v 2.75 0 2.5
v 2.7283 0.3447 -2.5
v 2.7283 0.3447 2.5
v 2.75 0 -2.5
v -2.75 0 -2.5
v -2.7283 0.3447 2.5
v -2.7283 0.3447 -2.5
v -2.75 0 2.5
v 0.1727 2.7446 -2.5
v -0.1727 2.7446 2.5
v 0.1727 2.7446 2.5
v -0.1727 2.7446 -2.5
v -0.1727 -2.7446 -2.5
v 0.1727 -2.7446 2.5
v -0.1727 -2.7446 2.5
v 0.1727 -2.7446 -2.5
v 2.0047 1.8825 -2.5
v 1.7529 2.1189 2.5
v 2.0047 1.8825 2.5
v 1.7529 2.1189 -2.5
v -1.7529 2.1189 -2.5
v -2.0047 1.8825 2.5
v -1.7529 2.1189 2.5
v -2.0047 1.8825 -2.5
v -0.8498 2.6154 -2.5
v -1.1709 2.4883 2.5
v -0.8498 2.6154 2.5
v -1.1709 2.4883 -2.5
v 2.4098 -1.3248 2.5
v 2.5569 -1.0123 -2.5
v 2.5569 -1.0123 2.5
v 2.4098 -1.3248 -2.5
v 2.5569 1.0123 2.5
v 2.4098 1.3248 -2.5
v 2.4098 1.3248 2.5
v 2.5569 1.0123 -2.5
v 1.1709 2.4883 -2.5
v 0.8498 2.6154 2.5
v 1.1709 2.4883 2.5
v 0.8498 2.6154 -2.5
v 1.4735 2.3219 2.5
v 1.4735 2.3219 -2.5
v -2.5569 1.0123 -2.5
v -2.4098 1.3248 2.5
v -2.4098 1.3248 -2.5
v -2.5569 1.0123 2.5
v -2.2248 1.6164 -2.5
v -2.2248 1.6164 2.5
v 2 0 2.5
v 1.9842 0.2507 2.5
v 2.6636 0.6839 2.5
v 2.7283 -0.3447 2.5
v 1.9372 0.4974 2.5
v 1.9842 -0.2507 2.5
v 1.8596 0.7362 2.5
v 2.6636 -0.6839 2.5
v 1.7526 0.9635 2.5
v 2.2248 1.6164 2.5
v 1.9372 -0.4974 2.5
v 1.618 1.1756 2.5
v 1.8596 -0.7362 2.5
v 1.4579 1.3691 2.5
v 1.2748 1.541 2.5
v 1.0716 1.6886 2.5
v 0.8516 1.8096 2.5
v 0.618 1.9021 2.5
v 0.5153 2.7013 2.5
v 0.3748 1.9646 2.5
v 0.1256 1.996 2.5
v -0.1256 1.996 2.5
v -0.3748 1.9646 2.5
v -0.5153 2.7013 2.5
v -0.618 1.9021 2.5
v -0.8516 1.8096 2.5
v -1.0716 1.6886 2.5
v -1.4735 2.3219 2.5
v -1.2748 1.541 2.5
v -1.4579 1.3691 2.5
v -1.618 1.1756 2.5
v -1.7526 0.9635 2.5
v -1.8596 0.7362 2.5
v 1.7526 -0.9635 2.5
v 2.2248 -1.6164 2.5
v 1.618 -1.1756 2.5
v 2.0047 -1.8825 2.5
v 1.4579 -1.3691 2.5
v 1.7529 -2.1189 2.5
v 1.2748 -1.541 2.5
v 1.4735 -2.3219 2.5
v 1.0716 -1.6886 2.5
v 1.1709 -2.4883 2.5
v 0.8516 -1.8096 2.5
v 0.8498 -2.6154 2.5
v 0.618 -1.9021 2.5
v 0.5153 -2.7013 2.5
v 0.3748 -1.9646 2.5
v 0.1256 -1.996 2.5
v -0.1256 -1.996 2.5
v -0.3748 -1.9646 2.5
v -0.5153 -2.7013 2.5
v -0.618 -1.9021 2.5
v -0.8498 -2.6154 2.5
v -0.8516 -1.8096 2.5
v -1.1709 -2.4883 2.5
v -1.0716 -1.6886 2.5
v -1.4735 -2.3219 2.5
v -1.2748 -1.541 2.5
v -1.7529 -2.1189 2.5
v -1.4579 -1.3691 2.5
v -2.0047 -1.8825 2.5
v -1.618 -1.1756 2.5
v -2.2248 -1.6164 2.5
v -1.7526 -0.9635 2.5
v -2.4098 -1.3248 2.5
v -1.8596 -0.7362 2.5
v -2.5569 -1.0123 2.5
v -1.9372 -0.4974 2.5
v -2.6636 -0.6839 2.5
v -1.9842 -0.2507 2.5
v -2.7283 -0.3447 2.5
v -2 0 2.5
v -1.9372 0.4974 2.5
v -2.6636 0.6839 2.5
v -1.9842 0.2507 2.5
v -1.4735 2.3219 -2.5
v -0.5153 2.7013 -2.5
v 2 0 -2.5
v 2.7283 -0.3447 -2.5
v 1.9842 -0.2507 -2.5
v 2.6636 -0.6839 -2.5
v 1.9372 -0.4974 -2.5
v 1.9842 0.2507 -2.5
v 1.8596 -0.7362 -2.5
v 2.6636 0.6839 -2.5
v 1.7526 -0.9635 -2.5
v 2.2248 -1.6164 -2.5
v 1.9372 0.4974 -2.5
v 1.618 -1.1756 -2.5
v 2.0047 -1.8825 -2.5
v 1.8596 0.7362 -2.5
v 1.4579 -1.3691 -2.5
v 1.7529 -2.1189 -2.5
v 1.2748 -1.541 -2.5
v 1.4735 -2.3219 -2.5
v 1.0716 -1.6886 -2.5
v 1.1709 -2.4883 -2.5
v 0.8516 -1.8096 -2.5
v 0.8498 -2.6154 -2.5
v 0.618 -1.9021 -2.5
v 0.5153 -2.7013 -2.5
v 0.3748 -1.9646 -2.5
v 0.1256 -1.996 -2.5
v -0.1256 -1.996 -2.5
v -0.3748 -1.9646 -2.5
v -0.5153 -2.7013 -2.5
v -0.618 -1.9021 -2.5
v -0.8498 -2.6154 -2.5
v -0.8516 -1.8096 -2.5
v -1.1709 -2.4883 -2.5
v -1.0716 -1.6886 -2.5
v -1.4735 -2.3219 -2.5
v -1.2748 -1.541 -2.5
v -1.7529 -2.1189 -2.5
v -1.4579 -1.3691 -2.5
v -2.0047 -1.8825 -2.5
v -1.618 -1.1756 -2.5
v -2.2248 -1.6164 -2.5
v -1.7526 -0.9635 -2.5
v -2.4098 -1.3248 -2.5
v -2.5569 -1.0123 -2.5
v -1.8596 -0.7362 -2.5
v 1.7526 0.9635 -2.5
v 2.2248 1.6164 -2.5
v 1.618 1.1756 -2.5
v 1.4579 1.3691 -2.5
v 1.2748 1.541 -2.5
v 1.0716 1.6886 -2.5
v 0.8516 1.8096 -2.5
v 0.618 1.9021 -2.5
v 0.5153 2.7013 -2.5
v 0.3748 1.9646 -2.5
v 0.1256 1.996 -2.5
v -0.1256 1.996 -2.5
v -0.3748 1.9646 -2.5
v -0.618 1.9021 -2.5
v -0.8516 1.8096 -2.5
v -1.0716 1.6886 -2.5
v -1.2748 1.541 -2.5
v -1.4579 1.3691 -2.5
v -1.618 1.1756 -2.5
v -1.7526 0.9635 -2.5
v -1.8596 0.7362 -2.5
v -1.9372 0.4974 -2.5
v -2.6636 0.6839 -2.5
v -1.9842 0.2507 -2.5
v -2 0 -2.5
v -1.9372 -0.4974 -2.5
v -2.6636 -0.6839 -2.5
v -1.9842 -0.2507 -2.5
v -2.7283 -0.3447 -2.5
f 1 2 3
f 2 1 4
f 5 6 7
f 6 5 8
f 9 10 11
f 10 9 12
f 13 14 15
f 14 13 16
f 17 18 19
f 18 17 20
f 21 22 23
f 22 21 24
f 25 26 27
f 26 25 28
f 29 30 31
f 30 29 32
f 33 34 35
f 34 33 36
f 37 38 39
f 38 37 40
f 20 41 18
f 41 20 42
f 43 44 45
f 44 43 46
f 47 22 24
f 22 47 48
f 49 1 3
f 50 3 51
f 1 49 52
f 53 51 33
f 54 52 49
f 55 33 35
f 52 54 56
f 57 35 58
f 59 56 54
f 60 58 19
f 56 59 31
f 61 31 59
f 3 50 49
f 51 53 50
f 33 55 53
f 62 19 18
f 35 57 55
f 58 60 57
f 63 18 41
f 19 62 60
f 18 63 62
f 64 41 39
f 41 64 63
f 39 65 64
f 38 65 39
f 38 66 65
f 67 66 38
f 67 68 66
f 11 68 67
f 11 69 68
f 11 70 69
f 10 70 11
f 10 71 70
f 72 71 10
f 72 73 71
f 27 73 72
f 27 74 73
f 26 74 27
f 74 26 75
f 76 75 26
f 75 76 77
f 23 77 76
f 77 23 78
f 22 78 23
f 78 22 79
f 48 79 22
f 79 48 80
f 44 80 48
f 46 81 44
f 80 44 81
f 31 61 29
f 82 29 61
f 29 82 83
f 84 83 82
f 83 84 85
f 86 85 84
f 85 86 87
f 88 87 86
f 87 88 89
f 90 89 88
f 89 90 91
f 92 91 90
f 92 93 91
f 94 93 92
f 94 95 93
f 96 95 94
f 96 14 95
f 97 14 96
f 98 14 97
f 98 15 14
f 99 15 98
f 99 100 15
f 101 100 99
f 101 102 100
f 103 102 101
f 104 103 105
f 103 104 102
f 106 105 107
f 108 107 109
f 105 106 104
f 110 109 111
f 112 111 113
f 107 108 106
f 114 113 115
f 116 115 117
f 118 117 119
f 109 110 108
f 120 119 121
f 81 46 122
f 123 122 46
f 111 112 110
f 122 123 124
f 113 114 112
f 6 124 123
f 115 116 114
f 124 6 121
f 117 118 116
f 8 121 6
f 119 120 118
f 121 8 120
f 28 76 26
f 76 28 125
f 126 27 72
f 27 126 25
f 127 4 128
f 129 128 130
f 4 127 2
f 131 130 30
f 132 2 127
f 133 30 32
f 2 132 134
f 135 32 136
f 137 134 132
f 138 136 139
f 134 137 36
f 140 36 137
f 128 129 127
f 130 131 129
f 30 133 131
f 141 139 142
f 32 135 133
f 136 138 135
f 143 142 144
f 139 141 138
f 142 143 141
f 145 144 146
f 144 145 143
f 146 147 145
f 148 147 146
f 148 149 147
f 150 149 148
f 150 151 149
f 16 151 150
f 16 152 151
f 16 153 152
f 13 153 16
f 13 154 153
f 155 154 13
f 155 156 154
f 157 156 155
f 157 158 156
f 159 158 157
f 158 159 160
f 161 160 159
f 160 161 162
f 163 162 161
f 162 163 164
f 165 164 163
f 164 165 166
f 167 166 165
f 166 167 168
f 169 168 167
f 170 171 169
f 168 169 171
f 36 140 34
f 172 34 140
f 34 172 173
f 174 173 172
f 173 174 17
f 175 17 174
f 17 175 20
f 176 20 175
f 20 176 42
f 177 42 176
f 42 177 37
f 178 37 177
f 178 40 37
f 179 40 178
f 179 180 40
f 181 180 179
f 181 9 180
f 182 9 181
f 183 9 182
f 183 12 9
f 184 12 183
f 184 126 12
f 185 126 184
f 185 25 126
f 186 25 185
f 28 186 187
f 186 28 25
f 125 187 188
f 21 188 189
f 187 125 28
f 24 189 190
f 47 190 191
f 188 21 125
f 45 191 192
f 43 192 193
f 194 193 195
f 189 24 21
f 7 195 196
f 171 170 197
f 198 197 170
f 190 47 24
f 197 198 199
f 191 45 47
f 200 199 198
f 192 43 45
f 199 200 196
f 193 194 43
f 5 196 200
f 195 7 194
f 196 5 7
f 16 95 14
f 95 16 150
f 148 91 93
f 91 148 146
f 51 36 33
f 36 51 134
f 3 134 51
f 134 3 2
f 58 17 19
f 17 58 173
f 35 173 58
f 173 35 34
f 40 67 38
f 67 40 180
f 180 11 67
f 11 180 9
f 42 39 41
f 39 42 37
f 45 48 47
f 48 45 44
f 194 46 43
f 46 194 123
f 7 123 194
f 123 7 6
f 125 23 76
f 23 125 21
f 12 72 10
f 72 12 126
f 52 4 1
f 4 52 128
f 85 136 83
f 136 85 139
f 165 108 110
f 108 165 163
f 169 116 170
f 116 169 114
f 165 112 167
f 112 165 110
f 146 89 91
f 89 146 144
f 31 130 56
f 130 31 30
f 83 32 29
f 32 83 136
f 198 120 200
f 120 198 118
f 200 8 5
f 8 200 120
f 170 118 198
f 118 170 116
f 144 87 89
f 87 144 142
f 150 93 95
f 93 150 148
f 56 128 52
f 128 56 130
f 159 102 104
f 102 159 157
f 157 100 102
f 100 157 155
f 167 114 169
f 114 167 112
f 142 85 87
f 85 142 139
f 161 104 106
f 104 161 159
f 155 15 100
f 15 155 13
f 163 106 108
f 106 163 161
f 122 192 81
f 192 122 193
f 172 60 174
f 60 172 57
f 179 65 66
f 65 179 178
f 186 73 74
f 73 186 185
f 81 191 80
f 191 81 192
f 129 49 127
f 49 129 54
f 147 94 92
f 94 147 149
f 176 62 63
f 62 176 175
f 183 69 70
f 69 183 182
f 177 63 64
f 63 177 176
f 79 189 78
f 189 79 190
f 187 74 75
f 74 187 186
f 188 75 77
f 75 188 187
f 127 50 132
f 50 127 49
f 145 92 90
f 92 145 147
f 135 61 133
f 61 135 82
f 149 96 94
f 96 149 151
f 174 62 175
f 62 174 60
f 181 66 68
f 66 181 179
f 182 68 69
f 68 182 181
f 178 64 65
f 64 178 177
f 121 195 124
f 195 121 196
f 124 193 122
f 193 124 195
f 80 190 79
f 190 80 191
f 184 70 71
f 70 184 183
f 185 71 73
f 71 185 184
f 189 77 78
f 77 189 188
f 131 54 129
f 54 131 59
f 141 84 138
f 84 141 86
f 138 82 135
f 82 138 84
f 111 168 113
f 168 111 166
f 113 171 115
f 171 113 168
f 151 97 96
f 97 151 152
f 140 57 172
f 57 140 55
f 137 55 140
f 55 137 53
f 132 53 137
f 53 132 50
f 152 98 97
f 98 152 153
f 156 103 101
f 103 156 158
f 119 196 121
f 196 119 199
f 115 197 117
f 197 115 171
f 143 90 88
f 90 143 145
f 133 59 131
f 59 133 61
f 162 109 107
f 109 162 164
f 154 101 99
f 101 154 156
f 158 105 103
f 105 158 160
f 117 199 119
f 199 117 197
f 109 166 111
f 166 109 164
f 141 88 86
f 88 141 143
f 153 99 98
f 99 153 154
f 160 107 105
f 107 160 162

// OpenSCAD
$fn = 50;


difference() {
	union() {
		translate(v = [0, 0, -2.5000000000]) {
			cylinder(h = 5, r = 2.7500000000);
		}
	}
	union() {
		translate(v = [0, 0, -100.0000000000]) {
			cylinder(h = 200, r = 2.0000000000);
		}
	}
}
